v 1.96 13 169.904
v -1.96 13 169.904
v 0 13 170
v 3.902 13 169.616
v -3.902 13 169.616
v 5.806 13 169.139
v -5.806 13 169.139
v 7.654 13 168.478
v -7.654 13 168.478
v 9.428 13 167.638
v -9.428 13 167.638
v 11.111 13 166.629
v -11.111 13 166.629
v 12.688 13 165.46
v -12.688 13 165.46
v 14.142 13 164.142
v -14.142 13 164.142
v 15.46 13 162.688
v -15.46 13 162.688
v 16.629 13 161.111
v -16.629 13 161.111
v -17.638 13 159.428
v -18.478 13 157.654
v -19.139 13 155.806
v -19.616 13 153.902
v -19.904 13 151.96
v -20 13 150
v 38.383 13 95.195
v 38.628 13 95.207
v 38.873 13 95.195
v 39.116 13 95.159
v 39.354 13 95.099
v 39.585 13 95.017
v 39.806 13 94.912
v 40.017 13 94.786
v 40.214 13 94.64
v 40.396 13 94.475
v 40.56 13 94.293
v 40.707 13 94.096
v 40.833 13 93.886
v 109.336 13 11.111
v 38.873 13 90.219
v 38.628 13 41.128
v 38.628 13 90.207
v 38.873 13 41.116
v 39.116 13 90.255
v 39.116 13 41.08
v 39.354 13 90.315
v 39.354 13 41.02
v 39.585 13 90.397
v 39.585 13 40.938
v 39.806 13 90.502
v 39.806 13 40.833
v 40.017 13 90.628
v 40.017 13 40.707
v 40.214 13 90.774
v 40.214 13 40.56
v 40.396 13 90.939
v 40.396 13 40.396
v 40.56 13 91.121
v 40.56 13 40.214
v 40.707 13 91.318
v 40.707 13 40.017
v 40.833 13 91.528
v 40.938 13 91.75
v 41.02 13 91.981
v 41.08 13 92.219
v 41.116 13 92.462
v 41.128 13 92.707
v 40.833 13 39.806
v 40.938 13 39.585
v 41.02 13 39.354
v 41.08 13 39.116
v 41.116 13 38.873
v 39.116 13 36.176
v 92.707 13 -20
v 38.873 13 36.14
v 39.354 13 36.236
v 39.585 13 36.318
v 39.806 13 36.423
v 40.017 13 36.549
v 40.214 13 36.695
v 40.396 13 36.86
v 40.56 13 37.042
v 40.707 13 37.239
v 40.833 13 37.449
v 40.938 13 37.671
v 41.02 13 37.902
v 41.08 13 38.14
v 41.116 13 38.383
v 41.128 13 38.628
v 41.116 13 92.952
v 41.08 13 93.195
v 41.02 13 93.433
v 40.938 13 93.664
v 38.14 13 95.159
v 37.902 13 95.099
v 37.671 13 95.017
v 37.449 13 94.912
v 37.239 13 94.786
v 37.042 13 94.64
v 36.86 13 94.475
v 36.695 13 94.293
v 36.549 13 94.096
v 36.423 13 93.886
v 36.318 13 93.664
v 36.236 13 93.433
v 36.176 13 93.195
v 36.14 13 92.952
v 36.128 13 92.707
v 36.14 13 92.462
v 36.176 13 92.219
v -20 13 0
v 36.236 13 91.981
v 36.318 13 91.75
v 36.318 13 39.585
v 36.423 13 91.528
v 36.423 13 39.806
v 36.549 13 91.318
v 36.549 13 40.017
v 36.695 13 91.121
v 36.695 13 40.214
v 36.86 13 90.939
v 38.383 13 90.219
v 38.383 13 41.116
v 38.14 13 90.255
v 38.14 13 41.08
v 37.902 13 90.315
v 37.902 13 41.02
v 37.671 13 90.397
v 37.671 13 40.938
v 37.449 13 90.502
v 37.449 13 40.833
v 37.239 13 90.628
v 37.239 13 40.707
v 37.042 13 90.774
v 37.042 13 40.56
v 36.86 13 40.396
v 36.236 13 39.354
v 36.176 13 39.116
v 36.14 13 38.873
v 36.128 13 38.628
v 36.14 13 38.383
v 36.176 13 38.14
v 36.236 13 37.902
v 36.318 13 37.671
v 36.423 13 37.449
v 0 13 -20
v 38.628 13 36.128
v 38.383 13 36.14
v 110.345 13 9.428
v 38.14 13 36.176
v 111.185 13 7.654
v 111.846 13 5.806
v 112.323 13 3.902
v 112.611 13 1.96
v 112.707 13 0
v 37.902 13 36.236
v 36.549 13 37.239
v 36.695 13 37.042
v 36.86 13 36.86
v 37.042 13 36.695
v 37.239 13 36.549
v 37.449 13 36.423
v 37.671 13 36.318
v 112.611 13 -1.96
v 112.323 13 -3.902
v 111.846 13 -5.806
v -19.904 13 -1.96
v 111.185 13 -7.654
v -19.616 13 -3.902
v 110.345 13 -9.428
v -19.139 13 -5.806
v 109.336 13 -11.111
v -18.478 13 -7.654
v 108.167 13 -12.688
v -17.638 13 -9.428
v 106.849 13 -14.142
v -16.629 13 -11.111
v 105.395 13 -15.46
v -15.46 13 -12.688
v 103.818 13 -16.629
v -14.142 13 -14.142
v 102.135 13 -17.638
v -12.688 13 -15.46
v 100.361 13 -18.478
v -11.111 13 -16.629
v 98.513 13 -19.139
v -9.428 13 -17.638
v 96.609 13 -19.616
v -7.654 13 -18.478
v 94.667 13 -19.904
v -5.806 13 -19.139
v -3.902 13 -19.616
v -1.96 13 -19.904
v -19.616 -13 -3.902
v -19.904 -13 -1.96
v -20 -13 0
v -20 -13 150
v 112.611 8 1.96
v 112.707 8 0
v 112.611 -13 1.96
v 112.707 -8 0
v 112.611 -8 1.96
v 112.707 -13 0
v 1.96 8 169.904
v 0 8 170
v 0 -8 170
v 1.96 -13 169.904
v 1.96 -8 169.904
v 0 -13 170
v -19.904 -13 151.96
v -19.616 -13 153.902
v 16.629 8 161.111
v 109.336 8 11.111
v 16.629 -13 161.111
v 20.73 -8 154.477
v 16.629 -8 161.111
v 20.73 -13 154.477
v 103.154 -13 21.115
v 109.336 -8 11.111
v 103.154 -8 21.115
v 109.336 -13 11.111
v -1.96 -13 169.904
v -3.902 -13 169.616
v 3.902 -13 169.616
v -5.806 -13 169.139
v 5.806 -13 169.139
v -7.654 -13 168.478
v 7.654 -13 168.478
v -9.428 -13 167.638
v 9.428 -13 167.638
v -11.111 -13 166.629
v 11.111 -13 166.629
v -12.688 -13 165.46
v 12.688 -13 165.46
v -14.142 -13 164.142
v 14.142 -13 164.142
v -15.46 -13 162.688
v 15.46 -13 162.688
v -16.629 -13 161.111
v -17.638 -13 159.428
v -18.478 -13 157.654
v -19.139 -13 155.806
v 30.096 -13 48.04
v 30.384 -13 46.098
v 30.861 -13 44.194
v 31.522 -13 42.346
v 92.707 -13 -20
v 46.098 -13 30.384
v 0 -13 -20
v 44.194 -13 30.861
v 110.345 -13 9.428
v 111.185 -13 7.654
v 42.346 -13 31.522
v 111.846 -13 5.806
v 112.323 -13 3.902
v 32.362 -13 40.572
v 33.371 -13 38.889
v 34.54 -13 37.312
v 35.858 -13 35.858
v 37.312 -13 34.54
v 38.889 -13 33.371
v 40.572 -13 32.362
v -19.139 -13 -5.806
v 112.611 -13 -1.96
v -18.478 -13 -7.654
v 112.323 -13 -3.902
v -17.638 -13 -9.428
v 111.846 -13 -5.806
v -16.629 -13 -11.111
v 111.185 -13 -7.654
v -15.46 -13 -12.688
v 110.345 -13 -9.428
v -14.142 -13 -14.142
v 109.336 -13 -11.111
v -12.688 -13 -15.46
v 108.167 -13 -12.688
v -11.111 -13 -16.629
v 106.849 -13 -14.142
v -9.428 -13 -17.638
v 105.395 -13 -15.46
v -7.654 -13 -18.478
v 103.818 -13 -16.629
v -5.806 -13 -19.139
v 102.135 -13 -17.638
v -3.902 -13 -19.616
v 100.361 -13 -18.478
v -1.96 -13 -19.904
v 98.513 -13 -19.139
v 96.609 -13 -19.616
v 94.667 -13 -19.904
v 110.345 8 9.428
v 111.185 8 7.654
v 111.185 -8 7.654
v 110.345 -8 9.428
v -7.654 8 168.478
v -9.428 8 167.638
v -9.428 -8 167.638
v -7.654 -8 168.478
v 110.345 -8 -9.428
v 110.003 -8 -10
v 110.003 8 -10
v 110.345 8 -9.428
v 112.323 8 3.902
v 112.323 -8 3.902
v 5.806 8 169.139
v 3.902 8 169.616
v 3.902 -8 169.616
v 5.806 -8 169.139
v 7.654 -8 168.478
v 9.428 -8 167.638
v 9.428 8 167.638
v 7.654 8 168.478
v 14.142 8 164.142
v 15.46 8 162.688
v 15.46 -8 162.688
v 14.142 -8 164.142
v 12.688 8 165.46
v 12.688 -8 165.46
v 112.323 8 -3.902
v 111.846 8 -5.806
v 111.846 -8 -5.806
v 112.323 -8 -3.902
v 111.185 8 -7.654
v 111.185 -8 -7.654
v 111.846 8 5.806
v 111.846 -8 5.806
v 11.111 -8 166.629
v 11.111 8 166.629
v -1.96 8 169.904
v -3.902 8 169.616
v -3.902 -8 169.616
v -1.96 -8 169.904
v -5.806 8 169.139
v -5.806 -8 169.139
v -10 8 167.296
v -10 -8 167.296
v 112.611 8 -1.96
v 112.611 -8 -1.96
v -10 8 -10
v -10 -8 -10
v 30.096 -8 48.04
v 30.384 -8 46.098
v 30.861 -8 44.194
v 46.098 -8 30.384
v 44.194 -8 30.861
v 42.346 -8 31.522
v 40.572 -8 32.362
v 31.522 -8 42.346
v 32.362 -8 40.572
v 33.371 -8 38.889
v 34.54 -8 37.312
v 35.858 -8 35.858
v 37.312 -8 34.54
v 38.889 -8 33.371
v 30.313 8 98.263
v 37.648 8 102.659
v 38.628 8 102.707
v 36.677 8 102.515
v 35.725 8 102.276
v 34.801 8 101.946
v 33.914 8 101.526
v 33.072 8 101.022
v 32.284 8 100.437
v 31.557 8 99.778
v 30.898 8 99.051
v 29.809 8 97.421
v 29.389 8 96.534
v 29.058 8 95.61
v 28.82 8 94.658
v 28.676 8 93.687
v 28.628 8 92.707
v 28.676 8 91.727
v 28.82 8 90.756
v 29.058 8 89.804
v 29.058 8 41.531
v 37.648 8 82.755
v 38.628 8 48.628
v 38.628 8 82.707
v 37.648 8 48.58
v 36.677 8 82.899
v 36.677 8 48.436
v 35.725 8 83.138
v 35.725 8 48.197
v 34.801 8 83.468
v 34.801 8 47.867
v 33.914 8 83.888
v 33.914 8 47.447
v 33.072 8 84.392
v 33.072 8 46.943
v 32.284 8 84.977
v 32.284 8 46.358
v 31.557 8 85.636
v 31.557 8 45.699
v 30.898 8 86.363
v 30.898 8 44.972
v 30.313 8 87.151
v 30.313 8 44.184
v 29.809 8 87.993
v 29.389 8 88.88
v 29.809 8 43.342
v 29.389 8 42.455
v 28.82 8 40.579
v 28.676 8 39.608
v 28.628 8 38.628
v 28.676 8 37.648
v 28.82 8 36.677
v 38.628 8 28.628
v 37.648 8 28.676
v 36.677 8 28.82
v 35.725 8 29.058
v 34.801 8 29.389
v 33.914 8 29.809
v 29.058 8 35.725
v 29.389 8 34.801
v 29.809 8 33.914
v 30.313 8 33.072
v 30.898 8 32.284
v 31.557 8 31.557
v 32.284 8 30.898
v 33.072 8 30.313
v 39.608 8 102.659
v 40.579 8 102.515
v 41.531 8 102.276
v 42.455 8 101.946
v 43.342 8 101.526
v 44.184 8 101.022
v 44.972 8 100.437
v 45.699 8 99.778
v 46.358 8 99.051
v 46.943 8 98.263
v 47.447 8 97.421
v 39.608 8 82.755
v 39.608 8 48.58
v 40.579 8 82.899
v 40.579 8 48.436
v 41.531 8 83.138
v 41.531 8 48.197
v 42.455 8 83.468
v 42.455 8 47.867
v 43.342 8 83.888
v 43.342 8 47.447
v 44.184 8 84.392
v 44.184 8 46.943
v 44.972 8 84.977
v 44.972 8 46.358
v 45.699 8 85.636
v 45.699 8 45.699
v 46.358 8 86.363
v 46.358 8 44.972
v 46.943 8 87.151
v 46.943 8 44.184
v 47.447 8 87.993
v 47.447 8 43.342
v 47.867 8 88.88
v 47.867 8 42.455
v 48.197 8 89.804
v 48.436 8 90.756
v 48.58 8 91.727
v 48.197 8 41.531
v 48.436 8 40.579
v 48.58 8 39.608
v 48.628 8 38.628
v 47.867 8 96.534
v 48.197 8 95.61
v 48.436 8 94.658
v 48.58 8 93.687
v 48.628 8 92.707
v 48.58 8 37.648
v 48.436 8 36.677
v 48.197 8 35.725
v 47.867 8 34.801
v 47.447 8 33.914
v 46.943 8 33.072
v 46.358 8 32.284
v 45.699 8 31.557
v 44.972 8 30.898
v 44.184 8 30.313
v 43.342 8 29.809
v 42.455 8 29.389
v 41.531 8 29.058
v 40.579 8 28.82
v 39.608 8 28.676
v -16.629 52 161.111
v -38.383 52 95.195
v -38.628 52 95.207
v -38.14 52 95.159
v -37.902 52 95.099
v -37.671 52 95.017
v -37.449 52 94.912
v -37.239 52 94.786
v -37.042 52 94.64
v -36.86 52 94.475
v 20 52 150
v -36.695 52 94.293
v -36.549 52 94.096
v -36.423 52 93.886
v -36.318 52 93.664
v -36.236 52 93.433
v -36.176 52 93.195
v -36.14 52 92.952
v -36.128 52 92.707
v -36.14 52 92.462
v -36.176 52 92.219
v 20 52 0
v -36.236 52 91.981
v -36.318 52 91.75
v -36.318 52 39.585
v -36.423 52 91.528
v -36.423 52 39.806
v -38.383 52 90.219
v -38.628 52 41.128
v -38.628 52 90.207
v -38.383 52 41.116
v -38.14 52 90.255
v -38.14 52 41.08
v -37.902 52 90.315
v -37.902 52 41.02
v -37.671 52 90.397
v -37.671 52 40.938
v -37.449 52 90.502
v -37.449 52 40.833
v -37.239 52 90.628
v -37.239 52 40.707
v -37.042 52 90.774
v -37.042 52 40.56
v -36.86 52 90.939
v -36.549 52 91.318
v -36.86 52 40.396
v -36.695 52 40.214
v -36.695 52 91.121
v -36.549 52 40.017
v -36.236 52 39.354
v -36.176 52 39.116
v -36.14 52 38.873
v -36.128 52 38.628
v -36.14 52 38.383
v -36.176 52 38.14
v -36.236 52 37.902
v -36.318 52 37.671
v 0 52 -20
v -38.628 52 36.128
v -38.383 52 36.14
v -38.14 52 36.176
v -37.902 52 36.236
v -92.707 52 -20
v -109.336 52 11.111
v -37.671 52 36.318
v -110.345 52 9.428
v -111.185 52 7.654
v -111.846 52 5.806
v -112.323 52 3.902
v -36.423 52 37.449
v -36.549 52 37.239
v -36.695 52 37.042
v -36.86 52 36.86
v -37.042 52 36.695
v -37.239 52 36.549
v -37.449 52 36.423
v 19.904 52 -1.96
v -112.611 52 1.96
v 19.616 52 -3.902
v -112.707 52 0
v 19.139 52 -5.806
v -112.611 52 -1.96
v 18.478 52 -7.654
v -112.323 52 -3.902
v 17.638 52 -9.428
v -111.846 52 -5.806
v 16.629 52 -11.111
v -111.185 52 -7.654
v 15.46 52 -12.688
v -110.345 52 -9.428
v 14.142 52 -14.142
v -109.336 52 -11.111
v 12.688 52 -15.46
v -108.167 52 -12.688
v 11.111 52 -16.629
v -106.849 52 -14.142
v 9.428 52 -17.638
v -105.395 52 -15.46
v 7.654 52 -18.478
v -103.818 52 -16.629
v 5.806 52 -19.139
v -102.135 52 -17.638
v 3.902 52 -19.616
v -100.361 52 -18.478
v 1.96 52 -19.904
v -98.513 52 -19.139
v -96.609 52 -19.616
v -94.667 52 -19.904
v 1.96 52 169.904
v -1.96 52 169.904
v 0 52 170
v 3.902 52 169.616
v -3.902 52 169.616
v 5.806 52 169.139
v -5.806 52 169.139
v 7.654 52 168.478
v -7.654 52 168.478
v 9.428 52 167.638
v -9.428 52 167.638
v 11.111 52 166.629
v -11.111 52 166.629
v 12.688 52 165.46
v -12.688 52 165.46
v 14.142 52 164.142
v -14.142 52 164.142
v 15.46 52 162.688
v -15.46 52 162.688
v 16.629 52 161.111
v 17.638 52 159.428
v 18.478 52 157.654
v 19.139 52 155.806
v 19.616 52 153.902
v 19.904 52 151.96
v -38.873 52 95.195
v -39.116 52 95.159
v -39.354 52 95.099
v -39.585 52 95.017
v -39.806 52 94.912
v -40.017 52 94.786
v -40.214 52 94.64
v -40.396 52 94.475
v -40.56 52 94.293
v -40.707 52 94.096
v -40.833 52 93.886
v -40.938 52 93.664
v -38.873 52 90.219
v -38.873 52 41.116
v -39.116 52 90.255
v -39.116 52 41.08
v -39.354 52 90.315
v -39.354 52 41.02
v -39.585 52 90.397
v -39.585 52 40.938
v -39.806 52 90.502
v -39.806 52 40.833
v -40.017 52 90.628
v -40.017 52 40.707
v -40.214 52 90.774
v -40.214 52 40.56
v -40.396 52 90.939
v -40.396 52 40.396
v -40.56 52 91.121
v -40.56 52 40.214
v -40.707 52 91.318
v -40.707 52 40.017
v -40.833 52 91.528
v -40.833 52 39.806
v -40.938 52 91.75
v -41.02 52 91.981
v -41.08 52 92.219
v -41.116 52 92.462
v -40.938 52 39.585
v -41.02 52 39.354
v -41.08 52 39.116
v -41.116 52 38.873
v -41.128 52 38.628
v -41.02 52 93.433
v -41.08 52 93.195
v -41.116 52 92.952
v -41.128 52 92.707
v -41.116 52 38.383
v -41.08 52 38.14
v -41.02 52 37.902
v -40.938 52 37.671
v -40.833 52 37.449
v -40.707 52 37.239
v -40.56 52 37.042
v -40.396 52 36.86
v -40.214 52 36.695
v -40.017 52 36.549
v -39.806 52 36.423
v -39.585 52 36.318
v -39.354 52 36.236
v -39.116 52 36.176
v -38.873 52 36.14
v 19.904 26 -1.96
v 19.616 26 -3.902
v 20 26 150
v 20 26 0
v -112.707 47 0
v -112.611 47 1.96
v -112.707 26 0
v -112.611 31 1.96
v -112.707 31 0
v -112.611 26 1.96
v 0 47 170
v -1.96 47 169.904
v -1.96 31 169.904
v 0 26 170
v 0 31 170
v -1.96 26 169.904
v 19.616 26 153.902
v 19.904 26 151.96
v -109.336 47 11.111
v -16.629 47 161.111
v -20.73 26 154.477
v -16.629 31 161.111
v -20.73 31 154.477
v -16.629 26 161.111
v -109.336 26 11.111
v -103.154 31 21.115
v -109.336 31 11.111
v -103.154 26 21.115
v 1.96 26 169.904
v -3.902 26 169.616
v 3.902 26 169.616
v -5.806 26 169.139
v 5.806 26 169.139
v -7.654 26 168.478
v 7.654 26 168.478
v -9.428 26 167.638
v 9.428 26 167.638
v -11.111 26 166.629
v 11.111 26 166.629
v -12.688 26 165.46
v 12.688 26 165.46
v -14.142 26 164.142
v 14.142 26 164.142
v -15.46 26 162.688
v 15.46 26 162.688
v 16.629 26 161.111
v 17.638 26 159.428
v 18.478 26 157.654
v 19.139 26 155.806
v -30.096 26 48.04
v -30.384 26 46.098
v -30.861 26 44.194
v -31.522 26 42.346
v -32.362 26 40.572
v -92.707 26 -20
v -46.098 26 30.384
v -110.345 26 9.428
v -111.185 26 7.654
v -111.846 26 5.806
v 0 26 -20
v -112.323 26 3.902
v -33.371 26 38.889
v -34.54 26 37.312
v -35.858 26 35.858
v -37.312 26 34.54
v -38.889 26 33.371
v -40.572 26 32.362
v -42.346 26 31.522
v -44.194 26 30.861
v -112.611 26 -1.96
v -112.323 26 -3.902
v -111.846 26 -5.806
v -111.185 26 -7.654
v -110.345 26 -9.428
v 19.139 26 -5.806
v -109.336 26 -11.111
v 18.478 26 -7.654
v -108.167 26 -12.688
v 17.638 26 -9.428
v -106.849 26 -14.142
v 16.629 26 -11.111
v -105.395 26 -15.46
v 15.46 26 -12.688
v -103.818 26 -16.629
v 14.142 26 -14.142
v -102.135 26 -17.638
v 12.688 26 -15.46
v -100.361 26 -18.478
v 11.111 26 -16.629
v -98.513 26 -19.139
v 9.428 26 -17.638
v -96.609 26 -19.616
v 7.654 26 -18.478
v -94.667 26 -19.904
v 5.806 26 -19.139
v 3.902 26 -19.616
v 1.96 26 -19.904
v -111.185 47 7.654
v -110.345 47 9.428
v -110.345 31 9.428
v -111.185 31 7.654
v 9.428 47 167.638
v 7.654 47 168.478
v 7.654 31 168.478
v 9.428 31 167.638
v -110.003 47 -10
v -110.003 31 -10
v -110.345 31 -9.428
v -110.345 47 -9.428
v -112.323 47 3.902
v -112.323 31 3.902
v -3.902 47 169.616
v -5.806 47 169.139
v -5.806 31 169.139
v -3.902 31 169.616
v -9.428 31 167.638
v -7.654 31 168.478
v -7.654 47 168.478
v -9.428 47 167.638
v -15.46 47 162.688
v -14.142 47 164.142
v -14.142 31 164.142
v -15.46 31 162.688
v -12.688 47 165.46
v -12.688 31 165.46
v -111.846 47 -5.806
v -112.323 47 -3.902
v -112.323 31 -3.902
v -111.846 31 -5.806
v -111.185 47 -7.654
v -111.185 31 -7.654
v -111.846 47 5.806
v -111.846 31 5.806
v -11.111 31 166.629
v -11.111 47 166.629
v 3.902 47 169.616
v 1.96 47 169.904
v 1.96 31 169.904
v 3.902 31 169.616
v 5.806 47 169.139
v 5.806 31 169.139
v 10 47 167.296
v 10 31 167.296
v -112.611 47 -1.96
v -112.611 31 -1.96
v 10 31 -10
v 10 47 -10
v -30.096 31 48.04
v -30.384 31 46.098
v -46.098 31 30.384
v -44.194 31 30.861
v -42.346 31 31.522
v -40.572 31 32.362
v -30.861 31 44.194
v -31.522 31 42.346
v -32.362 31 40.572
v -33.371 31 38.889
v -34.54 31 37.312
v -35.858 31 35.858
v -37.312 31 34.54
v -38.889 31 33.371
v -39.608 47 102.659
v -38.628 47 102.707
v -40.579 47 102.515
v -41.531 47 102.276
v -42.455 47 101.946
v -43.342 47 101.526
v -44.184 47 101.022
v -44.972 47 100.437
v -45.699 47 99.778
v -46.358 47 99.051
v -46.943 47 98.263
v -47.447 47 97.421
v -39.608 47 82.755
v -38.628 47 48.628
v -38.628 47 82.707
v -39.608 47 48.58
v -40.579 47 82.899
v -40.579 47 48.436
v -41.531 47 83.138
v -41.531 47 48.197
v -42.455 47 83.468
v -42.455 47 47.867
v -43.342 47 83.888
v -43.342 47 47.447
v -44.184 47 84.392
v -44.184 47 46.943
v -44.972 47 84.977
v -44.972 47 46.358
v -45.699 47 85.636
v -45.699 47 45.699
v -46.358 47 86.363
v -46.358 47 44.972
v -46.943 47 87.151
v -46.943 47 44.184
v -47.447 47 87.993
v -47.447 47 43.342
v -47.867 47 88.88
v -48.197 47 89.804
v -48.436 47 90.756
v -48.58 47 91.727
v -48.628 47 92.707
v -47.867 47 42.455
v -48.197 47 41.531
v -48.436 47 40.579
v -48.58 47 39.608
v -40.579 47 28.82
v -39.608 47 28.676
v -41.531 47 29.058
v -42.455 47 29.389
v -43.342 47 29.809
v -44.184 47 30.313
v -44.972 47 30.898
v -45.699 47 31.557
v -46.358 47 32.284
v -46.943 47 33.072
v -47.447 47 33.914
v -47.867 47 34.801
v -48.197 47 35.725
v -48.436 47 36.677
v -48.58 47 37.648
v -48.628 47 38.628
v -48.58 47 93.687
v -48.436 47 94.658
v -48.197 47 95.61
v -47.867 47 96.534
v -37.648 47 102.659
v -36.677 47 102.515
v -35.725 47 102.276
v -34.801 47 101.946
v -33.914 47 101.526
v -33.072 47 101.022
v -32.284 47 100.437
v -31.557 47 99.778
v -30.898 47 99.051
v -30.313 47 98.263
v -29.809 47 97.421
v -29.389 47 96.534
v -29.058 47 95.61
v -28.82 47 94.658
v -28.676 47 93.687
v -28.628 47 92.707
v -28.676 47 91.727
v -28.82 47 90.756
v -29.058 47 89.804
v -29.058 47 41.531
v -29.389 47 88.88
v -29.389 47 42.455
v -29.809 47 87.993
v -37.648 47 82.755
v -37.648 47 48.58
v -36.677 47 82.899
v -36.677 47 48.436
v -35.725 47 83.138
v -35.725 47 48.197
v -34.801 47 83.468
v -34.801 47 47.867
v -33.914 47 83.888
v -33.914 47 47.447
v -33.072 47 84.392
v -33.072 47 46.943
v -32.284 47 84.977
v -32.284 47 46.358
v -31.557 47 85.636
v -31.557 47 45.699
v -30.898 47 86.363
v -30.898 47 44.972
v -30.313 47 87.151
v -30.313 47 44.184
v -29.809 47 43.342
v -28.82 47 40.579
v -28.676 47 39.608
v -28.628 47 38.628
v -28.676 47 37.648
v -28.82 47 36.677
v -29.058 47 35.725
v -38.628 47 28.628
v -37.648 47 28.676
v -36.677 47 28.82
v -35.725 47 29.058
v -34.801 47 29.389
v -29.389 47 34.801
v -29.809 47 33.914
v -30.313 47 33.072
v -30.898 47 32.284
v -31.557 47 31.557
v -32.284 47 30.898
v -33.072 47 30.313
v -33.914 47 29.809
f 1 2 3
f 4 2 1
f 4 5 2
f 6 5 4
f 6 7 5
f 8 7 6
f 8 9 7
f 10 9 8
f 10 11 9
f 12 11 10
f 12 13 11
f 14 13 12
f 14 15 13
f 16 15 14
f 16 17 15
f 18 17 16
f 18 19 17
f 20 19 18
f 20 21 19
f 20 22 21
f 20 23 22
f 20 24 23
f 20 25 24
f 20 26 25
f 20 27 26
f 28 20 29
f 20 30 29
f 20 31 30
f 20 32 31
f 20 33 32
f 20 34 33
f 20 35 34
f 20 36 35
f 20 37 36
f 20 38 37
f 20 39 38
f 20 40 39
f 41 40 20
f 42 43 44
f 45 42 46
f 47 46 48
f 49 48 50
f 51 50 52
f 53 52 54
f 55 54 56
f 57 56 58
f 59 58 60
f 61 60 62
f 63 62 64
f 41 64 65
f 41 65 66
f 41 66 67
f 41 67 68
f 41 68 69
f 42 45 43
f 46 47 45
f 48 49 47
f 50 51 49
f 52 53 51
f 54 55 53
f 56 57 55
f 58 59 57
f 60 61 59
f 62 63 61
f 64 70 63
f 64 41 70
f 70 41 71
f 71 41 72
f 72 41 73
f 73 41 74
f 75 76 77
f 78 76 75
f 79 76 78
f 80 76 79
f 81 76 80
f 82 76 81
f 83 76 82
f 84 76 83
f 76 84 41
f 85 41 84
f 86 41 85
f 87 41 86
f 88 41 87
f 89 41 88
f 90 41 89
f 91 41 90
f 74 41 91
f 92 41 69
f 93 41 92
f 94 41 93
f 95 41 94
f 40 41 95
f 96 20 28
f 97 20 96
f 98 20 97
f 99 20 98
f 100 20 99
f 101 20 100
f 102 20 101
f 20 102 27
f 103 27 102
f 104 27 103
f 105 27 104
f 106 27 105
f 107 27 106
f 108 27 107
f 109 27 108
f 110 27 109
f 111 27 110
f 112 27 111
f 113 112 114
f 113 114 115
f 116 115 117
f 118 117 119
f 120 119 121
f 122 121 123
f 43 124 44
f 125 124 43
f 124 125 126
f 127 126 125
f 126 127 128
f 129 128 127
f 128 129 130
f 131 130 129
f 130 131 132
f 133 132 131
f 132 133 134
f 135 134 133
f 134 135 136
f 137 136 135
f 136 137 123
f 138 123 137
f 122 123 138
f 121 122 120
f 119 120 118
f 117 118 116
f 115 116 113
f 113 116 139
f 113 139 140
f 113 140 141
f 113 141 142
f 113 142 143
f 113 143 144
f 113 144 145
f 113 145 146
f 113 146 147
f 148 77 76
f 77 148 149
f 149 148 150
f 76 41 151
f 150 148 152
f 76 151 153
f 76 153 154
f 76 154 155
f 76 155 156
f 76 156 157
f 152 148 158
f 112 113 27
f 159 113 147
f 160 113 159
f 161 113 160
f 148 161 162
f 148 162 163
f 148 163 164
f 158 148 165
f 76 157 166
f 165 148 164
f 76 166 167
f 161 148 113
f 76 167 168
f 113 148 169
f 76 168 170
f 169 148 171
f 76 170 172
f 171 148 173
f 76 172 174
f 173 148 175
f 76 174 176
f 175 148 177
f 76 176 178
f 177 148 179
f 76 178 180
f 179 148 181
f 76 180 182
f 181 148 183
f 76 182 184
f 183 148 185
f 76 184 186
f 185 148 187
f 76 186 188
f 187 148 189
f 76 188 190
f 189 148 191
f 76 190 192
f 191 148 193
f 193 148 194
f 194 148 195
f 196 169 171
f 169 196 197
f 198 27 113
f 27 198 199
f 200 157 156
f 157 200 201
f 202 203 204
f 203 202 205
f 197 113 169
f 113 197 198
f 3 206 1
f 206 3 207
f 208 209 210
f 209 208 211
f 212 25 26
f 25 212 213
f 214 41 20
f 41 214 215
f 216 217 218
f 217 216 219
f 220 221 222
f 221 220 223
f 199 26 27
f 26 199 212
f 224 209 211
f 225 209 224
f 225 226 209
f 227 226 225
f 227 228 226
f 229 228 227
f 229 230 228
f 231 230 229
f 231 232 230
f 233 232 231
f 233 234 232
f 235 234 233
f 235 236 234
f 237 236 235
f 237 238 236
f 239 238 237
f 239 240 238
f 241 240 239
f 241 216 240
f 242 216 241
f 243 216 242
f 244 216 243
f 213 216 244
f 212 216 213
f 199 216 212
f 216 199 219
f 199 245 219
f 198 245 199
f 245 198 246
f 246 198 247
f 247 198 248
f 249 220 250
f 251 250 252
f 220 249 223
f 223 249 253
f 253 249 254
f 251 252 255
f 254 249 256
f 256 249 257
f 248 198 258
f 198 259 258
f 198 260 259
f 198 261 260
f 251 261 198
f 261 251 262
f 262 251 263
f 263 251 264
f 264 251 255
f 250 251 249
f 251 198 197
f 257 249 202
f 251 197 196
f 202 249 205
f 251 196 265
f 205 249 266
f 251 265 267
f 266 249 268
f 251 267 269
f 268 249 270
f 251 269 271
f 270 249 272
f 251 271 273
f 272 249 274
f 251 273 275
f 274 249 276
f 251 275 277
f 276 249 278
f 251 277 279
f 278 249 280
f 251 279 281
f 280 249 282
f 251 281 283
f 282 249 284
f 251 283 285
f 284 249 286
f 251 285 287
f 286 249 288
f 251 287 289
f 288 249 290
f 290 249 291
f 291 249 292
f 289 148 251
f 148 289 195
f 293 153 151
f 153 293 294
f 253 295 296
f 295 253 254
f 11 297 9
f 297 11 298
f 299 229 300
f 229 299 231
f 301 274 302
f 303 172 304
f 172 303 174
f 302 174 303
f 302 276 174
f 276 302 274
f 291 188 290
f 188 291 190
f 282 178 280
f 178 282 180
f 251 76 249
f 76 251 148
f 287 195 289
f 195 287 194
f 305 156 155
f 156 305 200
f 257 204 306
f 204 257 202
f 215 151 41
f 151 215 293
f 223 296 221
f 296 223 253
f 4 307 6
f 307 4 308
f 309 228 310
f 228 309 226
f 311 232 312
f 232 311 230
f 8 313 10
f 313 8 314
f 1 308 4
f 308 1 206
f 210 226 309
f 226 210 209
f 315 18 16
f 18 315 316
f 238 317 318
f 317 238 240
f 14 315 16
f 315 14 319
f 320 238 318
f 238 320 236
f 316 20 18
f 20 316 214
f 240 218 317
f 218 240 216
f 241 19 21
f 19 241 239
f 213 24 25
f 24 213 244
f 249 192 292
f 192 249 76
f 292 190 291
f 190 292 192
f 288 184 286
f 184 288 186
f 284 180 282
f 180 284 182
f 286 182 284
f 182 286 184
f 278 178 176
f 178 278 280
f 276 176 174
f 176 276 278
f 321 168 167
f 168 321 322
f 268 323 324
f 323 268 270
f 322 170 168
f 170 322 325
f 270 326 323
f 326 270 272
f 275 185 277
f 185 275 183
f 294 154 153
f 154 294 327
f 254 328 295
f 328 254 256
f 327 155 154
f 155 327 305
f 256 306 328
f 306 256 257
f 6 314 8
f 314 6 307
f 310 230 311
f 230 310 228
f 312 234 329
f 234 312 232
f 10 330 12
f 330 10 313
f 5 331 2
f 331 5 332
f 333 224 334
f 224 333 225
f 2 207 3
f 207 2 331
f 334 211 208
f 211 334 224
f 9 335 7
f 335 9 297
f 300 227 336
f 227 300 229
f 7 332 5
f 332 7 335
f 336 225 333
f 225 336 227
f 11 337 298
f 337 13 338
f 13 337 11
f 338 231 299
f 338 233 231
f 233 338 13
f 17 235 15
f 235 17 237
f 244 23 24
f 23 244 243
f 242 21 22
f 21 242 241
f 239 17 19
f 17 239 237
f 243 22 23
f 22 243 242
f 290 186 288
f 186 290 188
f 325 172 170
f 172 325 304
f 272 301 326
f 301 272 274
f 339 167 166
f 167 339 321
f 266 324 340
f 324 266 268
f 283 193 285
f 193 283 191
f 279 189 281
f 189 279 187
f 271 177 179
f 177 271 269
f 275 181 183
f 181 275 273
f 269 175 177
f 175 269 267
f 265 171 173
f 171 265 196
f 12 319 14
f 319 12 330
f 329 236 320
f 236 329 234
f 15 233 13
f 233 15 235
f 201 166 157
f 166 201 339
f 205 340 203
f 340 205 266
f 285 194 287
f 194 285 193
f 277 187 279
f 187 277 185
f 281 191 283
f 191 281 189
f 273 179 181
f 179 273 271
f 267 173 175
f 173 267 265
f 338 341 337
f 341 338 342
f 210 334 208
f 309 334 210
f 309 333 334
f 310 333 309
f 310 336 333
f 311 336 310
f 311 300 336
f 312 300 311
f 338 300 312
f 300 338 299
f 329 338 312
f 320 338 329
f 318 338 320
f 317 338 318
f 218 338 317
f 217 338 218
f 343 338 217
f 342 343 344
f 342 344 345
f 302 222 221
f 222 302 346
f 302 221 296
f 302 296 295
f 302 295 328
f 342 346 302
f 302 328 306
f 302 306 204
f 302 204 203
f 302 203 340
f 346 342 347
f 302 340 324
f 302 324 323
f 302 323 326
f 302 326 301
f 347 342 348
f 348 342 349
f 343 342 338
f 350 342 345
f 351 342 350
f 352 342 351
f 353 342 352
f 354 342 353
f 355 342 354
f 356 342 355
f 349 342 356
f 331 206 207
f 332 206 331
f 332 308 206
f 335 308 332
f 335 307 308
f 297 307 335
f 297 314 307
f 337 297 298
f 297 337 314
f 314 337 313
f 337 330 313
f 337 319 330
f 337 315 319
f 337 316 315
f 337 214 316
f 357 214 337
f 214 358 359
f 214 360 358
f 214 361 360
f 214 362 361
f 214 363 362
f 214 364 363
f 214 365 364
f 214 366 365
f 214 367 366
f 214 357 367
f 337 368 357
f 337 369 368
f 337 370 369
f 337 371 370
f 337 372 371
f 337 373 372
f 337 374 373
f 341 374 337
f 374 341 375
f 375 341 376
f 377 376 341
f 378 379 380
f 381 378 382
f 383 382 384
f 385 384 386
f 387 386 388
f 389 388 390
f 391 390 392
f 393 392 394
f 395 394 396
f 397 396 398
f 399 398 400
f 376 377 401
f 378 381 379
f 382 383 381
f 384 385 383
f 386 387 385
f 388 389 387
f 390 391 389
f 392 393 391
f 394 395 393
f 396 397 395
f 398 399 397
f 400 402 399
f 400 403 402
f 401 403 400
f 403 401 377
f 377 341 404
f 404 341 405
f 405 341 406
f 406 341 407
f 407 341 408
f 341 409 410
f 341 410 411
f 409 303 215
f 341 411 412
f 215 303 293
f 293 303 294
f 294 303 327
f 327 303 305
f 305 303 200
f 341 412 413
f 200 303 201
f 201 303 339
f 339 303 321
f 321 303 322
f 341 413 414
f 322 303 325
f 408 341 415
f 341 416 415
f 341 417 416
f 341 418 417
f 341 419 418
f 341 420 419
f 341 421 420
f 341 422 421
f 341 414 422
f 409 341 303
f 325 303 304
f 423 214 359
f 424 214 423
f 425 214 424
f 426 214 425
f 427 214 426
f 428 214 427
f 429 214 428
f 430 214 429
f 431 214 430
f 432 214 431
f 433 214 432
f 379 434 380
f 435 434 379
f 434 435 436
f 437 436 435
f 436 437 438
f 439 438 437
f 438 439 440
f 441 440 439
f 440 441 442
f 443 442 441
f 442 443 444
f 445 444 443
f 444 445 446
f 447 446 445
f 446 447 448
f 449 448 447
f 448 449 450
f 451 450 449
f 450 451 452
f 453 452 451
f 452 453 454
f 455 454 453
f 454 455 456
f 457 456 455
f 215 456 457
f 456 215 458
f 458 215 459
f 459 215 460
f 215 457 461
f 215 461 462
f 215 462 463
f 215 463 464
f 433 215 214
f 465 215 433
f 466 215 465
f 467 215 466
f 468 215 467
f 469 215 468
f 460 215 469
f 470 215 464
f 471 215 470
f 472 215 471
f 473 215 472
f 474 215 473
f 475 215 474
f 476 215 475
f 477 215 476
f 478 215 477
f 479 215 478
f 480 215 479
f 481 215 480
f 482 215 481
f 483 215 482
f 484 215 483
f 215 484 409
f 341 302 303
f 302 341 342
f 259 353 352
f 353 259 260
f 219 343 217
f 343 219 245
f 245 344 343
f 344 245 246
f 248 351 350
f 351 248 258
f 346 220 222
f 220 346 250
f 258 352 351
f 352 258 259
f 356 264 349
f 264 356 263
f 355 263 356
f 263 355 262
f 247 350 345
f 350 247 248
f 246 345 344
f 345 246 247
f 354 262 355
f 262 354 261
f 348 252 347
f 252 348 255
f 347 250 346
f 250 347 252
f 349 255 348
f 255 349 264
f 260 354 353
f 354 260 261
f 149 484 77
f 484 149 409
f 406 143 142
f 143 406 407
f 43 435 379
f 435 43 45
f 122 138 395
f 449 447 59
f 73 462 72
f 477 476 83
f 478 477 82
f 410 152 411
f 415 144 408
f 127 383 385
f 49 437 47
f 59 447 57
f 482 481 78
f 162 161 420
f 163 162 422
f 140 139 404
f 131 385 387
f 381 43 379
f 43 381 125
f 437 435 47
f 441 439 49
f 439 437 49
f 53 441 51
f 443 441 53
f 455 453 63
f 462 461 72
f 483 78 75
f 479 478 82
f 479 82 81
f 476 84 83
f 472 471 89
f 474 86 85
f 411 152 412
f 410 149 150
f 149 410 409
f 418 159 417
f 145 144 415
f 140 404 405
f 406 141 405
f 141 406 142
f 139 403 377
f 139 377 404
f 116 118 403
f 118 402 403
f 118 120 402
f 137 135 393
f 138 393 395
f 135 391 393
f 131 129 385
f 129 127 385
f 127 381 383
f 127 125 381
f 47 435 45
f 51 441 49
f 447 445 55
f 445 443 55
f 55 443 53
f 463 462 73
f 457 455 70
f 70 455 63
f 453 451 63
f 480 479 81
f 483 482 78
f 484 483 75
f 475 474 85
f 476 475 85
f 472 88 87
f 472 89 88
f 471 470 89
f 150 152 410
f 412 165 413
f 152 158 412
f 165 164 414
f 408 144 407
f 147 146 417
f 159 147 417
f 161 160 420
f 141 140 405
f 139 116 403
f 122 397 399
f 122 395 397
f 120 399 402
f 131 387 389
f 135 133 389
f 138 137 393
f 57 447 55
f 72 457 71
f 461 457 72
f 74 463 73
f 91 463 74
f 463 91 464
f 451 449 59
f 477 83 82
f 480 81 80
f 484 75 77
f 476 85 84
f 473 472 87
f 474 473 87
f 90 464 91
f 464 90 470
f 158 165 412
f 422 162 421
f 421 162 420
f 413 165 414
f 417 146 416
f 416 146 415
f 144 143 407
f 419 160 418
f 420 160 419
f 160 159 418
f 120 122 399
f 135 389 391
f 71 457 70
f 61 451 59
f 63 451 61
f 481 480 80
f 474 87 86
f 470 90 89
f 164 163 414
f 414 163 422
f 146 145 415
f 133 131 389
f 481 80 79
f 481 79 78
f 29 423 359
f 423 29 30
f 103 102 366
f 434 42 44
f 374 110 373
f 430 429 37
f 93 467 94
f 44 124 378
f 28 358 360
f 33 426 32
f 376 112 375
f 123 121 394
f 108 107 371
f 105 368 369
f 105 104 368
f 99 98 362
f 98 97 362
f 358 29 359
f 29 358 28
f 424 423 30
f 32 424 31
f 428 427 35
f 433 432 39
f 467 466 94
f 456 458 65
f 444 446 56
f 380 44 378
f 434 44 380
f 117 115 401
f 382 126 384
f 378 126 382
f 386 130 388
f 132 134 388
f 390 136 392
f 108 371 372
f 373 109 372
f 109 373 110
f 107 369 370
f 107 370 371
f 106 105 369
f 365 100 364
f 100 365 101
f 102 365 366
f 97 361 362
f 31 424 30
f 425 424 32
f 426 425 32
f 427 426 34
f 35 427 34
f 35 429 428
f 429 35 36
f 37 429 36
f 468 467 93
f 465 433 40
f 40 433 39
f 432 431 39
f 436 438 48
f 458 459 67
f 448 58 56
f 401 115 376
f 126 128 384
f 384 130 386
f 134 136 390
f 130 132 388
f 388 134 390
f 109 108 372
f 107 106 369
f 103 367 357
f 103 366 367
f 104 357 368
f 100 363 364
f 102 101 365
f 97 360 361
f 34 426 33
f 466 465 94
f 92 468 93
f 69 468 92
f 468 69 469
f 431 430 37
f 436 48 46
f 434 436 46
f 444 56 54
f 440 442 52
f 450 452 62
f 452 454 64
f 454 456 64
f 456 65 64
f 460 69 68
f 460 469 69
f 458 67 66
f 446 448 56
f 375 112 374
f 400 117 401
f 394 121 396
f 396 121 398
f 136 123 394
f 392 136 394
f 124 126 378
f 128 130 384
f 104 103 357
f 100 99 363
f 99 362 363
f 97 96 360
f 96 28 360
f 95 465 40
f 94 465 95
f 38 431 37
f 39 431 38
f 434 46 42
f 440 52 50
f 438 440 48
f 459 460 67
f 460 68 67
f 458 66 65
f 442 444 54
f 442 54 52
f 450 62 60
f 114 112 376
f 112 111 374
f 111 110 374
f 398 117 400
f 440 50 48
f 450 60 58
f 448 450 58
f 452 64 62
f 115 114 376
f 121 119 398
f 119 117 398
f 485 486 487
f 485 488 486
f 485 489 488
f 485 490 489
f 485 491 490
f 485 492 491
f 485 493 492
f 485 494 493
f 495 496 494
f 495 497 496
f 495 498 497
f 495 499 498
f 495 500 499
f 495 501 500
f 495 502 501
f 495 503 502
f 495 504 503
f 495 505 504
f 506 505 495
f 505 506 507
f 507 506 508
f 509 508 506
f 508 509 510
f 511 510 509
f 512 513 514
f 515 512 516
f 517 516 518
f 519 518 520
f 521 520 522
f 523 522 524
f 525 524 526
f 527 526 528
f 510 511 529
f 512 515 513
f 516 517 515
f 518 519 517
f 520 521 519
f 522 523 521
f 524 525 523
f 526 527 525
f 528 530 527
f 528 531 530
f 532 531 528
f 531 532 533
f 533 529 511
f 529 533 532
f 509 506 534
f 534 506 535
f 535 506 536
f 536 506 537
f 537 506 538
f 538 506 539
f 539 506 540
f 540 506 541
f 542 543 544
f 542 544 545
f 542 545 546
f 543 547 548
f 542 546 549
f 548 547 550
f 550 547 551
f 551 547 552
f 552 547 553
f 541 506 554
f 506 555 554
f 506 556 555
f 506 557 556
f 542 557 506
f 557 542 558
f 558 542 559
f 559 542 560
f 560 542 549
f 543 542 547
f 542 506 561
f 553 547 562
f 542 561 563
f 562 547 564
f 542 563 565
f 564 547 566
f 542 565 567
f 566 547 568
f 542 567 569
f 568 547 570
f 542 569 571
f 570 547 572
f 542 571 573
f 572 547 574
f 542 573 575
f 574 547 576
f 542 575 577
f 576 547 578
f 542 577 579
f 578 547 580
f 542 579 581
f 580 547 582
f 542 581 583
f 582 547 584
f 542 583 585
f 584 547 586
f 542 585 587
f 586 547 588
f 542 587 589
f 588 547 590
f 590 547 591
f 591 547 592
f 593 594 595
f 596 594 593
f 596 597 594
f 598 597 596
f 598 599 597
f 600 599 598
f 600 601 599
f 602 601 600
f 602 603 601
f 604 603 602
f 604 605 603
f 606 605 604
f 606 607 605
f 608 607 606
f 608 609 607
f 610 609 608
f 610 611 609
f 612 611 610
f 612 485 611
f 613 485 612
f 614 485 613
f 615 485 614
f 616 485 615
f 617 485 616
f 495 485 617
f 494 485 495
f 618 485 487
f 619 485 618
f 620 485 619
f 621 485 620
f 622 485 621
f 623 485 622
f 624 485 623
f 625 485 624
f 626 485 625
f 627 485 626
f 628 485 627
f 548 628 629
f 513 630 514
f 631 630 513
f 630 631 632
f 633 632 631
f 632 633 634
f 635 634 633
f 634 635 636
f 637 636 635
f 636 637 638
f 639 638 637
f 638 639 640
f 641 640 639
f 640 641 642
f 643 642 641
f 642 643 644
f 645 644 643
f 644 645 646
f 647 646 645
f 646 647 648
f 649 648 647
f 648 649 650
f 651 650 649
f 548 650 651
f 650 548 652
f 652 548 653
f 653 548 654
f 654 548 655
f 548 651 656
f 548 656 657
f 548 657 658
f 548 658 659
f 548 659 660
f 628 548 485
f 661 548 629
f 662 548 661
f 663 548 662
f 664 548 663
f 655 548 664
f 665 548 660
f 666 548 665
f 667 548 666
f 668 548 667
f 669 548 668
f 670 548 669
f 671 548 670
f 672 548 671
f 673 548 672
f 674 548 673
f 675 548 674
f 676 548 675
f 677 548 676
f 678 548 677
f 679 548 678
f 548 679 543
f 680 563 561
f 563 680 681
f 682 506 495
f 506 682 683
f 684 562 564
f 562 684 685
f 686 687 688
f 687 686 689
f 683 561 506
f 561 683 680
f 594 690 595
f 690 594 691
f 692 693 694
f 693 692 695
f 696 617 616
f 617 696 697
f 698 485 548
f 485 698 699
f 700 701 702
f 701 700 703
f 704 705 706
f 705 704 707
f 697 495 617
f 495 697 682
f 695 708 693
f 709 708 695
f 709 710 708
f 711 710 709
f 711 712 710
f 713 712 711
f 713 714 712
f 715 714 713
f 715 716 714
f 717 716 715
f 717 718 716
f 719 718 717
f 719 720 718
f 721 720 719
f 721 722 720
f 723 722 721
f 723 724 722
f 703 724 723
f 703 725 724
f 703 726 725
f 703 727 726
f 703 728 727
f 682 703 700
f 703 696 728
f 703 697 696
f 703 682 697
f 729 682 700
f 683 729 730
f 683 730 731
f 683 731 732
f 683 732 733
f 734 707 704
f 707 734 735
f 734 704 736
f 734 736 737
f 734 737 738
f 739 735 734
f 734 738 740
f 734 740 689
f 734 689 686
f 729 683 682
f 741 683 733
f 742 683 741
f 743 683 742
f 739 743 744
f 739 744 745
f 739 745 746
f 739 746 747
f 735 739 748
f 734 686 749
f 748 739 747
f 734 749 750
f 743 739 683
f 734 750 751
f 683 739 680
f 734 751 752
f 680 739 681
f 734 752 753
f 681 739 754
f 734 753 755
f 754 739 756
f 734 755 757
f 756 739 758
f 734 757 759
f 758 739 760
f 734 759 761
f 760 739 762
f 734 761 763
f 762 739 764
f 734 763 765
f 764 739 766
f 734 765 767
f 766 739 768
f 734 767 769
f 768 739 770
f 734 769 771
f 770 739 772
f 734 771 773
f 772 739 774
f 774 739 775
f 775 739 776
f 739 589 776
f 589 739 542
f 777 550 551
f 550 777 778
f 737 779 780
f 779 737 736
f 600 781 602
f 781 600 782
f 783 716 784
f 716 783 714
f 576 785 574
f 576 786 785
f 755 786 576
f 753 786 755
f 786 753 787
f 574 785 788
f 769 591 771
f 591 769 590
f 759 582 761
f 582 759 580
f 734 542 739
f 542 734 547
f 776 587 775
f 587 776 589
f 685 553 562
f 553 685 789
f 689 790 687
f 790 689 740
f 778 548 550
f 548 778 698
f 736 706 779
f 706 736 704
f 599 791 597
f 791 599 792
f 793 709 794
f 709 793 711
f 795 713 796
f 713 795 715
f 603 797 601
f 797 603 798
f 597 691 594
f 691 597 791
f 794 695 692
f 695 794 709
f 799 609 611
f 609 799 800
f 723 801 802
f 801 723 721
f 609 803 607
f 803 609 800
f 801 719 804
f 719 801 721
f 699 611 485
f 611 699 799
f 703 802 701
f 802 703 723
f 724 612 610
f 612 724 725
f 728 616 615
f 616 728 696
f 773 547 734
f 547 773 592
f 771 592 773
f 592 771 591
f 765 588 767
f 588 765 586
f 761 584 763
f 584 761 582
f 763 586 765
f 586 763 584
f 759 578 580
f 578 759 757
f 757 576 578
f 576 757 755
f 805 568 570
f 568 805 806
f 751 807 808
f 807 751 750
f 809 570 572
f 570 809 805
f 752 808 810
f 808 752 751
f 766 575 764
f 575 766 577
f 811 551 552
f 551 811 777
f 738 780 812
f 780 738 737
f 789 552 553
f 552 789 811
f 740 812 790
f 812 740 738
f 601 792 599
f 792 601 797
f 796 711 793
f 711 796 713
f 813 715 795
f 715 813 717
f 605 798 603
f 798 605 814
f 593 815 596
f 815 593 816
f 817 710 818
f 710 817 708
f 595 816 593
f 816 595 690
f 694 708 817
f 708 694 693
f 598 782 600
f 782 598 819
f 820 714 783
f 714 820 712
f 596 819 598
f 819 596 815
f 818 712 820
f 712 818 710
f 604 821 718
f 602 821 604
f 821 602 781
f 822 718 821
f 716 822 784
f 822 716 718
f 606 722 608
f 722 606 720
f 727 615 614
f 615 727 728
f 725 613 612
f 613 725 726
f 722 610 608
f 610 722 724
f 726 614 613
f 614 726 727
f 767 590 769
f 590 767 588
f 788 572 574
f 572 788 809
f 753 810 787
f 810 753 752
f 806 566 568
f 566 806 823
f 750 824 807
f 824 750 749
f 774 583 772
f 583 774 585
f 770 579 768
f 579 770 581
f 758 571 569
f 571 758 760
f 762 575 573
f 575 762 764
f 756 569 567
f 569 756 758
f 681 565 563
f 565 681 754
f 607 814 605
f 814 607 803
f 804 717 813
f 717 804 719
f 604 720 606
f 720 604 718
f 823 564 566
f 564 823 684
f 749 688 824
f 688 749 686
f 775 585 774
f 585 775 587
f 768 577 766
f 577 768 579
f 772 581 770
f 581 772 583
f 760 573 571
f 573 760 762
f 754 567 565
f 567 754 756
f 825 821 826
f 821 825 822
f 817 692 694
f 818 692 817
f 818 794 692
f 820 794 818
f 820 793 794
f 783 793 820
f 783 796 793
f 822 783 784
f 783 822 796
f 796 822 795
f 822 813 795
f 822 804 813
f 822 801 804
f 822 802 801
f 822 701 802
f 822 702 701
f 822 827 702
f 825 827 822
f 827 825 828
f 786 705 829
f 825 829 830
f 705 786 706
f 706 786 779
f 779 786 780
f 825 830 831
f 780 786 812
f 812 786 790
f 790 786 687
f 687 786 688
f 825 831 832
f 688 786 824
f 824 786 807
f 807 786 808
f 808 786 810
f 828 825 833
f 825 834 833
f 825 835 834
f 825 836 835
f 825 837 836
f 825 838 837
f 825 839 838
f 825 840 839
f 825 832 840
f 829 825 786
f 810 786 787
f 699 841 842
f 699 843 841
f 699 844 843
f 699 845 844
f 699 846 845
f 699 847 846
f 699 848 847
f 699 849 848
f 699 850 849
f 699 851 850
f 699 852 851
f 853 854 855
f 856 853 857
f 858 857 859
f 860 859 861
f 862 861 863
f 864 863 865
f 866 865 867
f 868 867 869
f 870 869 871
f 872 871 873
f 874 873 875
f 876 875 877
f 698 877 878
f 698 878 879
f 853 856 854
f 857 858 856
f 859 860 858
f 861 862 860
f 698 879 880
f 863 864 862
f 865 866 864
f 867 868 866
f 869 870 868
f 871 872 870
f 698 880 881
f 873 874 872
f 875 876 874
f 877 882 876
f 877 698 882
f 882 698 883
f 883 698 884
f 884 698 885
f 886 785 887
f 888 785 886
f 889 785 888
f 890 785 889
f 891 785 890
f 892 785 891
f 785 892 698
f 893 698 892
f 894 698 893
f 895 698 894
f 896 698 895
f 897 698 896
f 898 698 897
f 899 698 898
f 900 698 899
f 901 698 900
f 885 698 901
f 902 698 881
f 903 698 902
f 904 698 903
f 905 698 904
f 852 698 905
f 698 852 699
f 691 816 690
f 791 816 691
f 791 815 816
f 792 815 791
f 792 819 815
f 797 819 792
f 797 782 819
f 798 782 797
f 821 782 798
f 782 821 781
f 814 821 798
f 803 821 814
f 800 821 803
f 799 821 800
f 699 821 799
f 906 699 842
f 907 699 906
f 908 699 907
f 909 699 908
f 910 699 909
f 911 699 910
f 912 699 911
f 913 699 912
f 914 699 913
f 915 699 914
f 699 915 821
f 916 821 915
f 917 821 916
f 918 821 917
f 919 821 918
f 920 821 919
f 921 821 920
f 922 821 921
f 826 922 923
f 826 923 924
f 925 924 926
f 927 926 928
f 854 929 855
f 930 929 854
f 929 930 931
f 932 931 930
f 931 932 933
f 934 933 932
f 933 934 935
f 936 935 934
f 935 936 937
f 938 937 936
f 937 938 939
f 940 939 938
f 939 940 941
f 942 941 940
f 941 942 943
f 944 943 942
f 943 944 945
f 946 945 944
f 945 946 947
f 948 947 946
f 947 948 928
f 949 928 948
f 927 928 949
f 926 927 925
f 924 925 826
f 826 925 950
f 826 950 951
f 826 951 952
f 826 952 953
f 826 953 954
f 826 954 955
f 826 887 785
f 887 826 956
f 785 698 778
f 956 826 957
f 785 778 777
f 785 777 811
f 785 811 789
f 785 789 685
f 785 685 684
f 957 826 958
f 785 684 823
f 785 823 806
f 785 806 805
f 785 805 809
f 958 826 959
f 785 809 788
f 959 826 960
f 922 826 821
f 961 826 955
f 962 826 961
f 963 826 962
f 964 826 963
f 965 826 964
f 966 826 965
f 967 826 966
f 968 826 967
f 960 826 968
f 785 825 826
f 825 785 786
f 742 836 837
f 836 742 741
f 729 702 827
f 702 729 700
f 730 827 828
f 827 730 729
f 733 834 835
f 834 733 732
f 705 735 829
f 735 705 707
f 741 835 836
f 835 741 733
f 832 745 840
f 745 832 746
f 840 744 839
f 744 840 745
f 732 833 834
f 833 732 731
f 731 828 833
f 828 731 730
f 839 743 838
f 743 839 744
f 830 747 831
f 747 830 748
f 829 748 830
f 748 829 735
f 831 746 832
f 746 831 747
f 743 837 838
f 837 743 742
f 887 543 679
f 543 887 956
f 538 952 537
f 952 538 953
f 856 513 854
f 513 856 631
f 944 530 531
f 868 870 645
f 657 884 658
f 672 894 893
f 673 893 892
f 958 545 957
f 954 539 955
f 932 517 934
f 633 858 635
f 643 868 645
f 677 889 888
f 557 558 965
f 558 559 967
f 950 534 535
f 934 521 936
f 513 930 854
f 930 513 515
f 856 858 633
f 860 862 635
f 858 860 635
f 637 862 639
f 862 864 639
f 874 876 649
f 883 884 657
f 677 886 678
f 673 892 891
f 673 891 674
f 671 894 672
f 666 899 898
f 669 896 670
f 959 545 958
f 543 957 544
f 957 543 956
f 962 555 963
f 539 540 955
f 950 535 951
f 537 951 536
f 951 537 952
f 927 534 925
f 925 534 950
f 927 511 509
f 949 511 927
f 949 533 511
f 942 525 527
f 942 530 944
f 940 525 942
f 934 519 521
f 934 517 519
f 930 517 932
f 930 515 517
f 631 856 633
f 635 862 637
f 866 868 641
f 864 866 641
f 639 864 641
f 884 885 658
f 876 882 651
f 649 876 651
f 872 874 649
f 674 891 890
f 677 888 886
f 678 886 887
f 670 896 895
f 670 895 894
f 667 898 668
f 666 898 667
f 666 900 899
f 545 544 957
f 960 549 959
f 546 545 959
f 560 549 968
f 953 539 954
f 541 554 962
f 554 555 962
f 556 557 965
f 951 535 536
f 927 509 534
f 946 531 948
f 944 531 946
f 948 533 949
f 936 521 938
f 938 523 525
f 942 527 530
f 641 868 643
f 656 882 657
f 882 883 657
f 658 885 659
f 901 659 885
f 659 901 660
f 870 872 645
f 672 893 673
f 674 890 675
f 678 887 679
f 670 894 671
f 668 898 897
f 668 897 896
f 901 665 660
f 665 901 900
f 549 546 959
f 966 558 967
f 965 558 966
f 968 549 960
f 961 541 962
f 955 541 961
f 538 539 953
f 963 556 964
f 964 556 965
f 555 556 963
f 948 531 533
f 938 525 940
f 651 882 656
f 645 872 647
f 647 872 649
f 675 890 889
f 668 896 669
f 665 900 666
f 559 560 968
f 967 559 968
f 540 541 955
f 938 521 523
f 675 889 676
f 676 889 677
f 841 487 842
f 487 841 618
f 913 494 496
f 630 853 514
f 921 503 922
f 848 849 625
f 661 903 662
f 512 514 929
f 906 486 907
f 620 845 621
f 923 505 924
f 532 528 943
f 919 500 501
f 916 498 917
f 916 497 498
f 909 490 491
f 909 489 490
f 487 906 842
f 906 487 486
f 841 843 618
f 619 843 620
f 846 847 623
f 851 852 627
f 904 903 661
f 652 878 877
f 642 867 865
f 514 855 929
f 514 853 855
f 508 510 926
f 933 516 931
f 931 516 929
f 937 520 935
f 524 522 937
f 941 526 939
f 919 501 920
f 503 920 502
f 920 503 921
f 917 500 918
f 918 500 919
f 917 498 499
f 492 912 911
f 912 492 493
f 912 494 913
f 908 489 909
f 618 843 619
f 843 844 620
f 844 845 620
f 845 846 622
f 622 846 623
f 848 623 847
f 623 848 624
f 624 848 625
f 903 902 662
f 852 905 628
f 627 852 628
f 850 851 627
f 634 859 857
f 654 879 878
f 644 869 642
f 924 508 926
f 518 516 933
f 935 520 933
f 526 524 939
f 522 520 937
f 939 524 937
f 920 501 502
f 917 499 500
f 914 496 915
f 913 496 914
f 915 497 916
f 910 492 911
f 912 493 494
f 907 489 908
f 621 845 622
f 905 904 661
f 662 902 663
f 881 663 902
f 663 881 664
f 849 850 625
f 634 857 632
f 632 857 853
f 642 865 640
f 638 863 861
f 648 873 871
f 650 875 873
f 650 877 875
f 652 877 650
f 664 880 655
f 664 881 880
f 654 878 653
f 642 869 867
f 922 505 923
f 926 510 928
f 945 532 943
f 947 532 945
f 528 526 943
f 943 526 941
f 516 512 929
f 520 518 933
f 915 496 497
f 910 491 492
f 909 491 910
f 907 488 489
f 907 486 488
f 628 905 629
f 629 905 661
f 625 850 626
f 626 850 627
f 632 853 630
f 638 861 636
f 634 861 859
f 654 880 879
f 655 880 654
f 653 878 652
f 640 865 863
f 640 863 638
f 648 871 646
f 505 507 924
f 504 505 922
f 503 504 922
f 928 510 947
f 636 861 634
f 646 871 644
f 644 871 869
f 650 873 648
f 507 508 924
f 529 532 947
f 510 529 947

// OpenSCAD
// https://github.com/ashpool/3d/tree/master/board-wall-mount
$fn=64;

// Parameters
height=150;
boardThickness=16;
cornerRadius=20;
holeDiameter=5;
wallThickness=5;
holeType="chamfer"; // "countersink" || "chamfer"

// Constants
chamfer=4;
gr=1.618;

// Generate a pair of wall mounts
mount();
translate([0, 1.5 * (2 * wallThickness + boardThickness),0]) mirror([1, 0, 0]) mount();


// Code
module template1() {
    hull() {
        circle(r= cornerRadius);
        translate([0,height,0]) circle(r=cornerRadius);
        translate([height/gr,0,0]) circle(r=cornerRadius);
    }
}

module template2() {
    hull() {
        translate([2.5 * cornerRadius,2.5 * cornerRadius,0]) circle(r=cornerRadius);
        translate([1.4 * cornerRadius,height * 2,0]) circle(r=cornerRadius);
        translate([(height/gr) * 2, 1.4*cornerRadius,0]) circle(r=cornerRadius);
    }
}

module hole() {
    if(holeType=="countersink") {
        translate([0, 0, wallThickness*0.25]) cylinder(d=holeDiameter*chamfer, h=wallThickness*0.75, center=true);
        cylinder(d=holeDiameter, h=wallThickness, center=true);
    } else {
        cylinder(d1=holeDiameter, d2=holeDiameter*chamfer, h=wallThickness, center=true);
    }
}

module mount() {
    rotate([90, 0, 0]) union() {
        
        difference () {
            linear_extrude(height = boardThickness + 2 * wallThickness, center = true) template1();
            translate([height - 2 * wallThickness, height - 2 * wallThickness, 0]) cube([2 * height, 2 * height, boardThickness], center=true);
            translate([0, 0, wallThickness]) linear_extrude(height = boardThickness + 2 * wallThickness, center = true) template2();
    
            // Mount holes
            translate([(height/gr)/2.4, (height/gr)/2.4, -(boardThickness + wallThickness)/2]) rotate([0, 0, 90]) hole();
            translate([(height/gr)/2.4, height/gr, -(boardThickness + wallThickness)/2]) rotate([0, 0, 90]) hole();
        }
    }
}
